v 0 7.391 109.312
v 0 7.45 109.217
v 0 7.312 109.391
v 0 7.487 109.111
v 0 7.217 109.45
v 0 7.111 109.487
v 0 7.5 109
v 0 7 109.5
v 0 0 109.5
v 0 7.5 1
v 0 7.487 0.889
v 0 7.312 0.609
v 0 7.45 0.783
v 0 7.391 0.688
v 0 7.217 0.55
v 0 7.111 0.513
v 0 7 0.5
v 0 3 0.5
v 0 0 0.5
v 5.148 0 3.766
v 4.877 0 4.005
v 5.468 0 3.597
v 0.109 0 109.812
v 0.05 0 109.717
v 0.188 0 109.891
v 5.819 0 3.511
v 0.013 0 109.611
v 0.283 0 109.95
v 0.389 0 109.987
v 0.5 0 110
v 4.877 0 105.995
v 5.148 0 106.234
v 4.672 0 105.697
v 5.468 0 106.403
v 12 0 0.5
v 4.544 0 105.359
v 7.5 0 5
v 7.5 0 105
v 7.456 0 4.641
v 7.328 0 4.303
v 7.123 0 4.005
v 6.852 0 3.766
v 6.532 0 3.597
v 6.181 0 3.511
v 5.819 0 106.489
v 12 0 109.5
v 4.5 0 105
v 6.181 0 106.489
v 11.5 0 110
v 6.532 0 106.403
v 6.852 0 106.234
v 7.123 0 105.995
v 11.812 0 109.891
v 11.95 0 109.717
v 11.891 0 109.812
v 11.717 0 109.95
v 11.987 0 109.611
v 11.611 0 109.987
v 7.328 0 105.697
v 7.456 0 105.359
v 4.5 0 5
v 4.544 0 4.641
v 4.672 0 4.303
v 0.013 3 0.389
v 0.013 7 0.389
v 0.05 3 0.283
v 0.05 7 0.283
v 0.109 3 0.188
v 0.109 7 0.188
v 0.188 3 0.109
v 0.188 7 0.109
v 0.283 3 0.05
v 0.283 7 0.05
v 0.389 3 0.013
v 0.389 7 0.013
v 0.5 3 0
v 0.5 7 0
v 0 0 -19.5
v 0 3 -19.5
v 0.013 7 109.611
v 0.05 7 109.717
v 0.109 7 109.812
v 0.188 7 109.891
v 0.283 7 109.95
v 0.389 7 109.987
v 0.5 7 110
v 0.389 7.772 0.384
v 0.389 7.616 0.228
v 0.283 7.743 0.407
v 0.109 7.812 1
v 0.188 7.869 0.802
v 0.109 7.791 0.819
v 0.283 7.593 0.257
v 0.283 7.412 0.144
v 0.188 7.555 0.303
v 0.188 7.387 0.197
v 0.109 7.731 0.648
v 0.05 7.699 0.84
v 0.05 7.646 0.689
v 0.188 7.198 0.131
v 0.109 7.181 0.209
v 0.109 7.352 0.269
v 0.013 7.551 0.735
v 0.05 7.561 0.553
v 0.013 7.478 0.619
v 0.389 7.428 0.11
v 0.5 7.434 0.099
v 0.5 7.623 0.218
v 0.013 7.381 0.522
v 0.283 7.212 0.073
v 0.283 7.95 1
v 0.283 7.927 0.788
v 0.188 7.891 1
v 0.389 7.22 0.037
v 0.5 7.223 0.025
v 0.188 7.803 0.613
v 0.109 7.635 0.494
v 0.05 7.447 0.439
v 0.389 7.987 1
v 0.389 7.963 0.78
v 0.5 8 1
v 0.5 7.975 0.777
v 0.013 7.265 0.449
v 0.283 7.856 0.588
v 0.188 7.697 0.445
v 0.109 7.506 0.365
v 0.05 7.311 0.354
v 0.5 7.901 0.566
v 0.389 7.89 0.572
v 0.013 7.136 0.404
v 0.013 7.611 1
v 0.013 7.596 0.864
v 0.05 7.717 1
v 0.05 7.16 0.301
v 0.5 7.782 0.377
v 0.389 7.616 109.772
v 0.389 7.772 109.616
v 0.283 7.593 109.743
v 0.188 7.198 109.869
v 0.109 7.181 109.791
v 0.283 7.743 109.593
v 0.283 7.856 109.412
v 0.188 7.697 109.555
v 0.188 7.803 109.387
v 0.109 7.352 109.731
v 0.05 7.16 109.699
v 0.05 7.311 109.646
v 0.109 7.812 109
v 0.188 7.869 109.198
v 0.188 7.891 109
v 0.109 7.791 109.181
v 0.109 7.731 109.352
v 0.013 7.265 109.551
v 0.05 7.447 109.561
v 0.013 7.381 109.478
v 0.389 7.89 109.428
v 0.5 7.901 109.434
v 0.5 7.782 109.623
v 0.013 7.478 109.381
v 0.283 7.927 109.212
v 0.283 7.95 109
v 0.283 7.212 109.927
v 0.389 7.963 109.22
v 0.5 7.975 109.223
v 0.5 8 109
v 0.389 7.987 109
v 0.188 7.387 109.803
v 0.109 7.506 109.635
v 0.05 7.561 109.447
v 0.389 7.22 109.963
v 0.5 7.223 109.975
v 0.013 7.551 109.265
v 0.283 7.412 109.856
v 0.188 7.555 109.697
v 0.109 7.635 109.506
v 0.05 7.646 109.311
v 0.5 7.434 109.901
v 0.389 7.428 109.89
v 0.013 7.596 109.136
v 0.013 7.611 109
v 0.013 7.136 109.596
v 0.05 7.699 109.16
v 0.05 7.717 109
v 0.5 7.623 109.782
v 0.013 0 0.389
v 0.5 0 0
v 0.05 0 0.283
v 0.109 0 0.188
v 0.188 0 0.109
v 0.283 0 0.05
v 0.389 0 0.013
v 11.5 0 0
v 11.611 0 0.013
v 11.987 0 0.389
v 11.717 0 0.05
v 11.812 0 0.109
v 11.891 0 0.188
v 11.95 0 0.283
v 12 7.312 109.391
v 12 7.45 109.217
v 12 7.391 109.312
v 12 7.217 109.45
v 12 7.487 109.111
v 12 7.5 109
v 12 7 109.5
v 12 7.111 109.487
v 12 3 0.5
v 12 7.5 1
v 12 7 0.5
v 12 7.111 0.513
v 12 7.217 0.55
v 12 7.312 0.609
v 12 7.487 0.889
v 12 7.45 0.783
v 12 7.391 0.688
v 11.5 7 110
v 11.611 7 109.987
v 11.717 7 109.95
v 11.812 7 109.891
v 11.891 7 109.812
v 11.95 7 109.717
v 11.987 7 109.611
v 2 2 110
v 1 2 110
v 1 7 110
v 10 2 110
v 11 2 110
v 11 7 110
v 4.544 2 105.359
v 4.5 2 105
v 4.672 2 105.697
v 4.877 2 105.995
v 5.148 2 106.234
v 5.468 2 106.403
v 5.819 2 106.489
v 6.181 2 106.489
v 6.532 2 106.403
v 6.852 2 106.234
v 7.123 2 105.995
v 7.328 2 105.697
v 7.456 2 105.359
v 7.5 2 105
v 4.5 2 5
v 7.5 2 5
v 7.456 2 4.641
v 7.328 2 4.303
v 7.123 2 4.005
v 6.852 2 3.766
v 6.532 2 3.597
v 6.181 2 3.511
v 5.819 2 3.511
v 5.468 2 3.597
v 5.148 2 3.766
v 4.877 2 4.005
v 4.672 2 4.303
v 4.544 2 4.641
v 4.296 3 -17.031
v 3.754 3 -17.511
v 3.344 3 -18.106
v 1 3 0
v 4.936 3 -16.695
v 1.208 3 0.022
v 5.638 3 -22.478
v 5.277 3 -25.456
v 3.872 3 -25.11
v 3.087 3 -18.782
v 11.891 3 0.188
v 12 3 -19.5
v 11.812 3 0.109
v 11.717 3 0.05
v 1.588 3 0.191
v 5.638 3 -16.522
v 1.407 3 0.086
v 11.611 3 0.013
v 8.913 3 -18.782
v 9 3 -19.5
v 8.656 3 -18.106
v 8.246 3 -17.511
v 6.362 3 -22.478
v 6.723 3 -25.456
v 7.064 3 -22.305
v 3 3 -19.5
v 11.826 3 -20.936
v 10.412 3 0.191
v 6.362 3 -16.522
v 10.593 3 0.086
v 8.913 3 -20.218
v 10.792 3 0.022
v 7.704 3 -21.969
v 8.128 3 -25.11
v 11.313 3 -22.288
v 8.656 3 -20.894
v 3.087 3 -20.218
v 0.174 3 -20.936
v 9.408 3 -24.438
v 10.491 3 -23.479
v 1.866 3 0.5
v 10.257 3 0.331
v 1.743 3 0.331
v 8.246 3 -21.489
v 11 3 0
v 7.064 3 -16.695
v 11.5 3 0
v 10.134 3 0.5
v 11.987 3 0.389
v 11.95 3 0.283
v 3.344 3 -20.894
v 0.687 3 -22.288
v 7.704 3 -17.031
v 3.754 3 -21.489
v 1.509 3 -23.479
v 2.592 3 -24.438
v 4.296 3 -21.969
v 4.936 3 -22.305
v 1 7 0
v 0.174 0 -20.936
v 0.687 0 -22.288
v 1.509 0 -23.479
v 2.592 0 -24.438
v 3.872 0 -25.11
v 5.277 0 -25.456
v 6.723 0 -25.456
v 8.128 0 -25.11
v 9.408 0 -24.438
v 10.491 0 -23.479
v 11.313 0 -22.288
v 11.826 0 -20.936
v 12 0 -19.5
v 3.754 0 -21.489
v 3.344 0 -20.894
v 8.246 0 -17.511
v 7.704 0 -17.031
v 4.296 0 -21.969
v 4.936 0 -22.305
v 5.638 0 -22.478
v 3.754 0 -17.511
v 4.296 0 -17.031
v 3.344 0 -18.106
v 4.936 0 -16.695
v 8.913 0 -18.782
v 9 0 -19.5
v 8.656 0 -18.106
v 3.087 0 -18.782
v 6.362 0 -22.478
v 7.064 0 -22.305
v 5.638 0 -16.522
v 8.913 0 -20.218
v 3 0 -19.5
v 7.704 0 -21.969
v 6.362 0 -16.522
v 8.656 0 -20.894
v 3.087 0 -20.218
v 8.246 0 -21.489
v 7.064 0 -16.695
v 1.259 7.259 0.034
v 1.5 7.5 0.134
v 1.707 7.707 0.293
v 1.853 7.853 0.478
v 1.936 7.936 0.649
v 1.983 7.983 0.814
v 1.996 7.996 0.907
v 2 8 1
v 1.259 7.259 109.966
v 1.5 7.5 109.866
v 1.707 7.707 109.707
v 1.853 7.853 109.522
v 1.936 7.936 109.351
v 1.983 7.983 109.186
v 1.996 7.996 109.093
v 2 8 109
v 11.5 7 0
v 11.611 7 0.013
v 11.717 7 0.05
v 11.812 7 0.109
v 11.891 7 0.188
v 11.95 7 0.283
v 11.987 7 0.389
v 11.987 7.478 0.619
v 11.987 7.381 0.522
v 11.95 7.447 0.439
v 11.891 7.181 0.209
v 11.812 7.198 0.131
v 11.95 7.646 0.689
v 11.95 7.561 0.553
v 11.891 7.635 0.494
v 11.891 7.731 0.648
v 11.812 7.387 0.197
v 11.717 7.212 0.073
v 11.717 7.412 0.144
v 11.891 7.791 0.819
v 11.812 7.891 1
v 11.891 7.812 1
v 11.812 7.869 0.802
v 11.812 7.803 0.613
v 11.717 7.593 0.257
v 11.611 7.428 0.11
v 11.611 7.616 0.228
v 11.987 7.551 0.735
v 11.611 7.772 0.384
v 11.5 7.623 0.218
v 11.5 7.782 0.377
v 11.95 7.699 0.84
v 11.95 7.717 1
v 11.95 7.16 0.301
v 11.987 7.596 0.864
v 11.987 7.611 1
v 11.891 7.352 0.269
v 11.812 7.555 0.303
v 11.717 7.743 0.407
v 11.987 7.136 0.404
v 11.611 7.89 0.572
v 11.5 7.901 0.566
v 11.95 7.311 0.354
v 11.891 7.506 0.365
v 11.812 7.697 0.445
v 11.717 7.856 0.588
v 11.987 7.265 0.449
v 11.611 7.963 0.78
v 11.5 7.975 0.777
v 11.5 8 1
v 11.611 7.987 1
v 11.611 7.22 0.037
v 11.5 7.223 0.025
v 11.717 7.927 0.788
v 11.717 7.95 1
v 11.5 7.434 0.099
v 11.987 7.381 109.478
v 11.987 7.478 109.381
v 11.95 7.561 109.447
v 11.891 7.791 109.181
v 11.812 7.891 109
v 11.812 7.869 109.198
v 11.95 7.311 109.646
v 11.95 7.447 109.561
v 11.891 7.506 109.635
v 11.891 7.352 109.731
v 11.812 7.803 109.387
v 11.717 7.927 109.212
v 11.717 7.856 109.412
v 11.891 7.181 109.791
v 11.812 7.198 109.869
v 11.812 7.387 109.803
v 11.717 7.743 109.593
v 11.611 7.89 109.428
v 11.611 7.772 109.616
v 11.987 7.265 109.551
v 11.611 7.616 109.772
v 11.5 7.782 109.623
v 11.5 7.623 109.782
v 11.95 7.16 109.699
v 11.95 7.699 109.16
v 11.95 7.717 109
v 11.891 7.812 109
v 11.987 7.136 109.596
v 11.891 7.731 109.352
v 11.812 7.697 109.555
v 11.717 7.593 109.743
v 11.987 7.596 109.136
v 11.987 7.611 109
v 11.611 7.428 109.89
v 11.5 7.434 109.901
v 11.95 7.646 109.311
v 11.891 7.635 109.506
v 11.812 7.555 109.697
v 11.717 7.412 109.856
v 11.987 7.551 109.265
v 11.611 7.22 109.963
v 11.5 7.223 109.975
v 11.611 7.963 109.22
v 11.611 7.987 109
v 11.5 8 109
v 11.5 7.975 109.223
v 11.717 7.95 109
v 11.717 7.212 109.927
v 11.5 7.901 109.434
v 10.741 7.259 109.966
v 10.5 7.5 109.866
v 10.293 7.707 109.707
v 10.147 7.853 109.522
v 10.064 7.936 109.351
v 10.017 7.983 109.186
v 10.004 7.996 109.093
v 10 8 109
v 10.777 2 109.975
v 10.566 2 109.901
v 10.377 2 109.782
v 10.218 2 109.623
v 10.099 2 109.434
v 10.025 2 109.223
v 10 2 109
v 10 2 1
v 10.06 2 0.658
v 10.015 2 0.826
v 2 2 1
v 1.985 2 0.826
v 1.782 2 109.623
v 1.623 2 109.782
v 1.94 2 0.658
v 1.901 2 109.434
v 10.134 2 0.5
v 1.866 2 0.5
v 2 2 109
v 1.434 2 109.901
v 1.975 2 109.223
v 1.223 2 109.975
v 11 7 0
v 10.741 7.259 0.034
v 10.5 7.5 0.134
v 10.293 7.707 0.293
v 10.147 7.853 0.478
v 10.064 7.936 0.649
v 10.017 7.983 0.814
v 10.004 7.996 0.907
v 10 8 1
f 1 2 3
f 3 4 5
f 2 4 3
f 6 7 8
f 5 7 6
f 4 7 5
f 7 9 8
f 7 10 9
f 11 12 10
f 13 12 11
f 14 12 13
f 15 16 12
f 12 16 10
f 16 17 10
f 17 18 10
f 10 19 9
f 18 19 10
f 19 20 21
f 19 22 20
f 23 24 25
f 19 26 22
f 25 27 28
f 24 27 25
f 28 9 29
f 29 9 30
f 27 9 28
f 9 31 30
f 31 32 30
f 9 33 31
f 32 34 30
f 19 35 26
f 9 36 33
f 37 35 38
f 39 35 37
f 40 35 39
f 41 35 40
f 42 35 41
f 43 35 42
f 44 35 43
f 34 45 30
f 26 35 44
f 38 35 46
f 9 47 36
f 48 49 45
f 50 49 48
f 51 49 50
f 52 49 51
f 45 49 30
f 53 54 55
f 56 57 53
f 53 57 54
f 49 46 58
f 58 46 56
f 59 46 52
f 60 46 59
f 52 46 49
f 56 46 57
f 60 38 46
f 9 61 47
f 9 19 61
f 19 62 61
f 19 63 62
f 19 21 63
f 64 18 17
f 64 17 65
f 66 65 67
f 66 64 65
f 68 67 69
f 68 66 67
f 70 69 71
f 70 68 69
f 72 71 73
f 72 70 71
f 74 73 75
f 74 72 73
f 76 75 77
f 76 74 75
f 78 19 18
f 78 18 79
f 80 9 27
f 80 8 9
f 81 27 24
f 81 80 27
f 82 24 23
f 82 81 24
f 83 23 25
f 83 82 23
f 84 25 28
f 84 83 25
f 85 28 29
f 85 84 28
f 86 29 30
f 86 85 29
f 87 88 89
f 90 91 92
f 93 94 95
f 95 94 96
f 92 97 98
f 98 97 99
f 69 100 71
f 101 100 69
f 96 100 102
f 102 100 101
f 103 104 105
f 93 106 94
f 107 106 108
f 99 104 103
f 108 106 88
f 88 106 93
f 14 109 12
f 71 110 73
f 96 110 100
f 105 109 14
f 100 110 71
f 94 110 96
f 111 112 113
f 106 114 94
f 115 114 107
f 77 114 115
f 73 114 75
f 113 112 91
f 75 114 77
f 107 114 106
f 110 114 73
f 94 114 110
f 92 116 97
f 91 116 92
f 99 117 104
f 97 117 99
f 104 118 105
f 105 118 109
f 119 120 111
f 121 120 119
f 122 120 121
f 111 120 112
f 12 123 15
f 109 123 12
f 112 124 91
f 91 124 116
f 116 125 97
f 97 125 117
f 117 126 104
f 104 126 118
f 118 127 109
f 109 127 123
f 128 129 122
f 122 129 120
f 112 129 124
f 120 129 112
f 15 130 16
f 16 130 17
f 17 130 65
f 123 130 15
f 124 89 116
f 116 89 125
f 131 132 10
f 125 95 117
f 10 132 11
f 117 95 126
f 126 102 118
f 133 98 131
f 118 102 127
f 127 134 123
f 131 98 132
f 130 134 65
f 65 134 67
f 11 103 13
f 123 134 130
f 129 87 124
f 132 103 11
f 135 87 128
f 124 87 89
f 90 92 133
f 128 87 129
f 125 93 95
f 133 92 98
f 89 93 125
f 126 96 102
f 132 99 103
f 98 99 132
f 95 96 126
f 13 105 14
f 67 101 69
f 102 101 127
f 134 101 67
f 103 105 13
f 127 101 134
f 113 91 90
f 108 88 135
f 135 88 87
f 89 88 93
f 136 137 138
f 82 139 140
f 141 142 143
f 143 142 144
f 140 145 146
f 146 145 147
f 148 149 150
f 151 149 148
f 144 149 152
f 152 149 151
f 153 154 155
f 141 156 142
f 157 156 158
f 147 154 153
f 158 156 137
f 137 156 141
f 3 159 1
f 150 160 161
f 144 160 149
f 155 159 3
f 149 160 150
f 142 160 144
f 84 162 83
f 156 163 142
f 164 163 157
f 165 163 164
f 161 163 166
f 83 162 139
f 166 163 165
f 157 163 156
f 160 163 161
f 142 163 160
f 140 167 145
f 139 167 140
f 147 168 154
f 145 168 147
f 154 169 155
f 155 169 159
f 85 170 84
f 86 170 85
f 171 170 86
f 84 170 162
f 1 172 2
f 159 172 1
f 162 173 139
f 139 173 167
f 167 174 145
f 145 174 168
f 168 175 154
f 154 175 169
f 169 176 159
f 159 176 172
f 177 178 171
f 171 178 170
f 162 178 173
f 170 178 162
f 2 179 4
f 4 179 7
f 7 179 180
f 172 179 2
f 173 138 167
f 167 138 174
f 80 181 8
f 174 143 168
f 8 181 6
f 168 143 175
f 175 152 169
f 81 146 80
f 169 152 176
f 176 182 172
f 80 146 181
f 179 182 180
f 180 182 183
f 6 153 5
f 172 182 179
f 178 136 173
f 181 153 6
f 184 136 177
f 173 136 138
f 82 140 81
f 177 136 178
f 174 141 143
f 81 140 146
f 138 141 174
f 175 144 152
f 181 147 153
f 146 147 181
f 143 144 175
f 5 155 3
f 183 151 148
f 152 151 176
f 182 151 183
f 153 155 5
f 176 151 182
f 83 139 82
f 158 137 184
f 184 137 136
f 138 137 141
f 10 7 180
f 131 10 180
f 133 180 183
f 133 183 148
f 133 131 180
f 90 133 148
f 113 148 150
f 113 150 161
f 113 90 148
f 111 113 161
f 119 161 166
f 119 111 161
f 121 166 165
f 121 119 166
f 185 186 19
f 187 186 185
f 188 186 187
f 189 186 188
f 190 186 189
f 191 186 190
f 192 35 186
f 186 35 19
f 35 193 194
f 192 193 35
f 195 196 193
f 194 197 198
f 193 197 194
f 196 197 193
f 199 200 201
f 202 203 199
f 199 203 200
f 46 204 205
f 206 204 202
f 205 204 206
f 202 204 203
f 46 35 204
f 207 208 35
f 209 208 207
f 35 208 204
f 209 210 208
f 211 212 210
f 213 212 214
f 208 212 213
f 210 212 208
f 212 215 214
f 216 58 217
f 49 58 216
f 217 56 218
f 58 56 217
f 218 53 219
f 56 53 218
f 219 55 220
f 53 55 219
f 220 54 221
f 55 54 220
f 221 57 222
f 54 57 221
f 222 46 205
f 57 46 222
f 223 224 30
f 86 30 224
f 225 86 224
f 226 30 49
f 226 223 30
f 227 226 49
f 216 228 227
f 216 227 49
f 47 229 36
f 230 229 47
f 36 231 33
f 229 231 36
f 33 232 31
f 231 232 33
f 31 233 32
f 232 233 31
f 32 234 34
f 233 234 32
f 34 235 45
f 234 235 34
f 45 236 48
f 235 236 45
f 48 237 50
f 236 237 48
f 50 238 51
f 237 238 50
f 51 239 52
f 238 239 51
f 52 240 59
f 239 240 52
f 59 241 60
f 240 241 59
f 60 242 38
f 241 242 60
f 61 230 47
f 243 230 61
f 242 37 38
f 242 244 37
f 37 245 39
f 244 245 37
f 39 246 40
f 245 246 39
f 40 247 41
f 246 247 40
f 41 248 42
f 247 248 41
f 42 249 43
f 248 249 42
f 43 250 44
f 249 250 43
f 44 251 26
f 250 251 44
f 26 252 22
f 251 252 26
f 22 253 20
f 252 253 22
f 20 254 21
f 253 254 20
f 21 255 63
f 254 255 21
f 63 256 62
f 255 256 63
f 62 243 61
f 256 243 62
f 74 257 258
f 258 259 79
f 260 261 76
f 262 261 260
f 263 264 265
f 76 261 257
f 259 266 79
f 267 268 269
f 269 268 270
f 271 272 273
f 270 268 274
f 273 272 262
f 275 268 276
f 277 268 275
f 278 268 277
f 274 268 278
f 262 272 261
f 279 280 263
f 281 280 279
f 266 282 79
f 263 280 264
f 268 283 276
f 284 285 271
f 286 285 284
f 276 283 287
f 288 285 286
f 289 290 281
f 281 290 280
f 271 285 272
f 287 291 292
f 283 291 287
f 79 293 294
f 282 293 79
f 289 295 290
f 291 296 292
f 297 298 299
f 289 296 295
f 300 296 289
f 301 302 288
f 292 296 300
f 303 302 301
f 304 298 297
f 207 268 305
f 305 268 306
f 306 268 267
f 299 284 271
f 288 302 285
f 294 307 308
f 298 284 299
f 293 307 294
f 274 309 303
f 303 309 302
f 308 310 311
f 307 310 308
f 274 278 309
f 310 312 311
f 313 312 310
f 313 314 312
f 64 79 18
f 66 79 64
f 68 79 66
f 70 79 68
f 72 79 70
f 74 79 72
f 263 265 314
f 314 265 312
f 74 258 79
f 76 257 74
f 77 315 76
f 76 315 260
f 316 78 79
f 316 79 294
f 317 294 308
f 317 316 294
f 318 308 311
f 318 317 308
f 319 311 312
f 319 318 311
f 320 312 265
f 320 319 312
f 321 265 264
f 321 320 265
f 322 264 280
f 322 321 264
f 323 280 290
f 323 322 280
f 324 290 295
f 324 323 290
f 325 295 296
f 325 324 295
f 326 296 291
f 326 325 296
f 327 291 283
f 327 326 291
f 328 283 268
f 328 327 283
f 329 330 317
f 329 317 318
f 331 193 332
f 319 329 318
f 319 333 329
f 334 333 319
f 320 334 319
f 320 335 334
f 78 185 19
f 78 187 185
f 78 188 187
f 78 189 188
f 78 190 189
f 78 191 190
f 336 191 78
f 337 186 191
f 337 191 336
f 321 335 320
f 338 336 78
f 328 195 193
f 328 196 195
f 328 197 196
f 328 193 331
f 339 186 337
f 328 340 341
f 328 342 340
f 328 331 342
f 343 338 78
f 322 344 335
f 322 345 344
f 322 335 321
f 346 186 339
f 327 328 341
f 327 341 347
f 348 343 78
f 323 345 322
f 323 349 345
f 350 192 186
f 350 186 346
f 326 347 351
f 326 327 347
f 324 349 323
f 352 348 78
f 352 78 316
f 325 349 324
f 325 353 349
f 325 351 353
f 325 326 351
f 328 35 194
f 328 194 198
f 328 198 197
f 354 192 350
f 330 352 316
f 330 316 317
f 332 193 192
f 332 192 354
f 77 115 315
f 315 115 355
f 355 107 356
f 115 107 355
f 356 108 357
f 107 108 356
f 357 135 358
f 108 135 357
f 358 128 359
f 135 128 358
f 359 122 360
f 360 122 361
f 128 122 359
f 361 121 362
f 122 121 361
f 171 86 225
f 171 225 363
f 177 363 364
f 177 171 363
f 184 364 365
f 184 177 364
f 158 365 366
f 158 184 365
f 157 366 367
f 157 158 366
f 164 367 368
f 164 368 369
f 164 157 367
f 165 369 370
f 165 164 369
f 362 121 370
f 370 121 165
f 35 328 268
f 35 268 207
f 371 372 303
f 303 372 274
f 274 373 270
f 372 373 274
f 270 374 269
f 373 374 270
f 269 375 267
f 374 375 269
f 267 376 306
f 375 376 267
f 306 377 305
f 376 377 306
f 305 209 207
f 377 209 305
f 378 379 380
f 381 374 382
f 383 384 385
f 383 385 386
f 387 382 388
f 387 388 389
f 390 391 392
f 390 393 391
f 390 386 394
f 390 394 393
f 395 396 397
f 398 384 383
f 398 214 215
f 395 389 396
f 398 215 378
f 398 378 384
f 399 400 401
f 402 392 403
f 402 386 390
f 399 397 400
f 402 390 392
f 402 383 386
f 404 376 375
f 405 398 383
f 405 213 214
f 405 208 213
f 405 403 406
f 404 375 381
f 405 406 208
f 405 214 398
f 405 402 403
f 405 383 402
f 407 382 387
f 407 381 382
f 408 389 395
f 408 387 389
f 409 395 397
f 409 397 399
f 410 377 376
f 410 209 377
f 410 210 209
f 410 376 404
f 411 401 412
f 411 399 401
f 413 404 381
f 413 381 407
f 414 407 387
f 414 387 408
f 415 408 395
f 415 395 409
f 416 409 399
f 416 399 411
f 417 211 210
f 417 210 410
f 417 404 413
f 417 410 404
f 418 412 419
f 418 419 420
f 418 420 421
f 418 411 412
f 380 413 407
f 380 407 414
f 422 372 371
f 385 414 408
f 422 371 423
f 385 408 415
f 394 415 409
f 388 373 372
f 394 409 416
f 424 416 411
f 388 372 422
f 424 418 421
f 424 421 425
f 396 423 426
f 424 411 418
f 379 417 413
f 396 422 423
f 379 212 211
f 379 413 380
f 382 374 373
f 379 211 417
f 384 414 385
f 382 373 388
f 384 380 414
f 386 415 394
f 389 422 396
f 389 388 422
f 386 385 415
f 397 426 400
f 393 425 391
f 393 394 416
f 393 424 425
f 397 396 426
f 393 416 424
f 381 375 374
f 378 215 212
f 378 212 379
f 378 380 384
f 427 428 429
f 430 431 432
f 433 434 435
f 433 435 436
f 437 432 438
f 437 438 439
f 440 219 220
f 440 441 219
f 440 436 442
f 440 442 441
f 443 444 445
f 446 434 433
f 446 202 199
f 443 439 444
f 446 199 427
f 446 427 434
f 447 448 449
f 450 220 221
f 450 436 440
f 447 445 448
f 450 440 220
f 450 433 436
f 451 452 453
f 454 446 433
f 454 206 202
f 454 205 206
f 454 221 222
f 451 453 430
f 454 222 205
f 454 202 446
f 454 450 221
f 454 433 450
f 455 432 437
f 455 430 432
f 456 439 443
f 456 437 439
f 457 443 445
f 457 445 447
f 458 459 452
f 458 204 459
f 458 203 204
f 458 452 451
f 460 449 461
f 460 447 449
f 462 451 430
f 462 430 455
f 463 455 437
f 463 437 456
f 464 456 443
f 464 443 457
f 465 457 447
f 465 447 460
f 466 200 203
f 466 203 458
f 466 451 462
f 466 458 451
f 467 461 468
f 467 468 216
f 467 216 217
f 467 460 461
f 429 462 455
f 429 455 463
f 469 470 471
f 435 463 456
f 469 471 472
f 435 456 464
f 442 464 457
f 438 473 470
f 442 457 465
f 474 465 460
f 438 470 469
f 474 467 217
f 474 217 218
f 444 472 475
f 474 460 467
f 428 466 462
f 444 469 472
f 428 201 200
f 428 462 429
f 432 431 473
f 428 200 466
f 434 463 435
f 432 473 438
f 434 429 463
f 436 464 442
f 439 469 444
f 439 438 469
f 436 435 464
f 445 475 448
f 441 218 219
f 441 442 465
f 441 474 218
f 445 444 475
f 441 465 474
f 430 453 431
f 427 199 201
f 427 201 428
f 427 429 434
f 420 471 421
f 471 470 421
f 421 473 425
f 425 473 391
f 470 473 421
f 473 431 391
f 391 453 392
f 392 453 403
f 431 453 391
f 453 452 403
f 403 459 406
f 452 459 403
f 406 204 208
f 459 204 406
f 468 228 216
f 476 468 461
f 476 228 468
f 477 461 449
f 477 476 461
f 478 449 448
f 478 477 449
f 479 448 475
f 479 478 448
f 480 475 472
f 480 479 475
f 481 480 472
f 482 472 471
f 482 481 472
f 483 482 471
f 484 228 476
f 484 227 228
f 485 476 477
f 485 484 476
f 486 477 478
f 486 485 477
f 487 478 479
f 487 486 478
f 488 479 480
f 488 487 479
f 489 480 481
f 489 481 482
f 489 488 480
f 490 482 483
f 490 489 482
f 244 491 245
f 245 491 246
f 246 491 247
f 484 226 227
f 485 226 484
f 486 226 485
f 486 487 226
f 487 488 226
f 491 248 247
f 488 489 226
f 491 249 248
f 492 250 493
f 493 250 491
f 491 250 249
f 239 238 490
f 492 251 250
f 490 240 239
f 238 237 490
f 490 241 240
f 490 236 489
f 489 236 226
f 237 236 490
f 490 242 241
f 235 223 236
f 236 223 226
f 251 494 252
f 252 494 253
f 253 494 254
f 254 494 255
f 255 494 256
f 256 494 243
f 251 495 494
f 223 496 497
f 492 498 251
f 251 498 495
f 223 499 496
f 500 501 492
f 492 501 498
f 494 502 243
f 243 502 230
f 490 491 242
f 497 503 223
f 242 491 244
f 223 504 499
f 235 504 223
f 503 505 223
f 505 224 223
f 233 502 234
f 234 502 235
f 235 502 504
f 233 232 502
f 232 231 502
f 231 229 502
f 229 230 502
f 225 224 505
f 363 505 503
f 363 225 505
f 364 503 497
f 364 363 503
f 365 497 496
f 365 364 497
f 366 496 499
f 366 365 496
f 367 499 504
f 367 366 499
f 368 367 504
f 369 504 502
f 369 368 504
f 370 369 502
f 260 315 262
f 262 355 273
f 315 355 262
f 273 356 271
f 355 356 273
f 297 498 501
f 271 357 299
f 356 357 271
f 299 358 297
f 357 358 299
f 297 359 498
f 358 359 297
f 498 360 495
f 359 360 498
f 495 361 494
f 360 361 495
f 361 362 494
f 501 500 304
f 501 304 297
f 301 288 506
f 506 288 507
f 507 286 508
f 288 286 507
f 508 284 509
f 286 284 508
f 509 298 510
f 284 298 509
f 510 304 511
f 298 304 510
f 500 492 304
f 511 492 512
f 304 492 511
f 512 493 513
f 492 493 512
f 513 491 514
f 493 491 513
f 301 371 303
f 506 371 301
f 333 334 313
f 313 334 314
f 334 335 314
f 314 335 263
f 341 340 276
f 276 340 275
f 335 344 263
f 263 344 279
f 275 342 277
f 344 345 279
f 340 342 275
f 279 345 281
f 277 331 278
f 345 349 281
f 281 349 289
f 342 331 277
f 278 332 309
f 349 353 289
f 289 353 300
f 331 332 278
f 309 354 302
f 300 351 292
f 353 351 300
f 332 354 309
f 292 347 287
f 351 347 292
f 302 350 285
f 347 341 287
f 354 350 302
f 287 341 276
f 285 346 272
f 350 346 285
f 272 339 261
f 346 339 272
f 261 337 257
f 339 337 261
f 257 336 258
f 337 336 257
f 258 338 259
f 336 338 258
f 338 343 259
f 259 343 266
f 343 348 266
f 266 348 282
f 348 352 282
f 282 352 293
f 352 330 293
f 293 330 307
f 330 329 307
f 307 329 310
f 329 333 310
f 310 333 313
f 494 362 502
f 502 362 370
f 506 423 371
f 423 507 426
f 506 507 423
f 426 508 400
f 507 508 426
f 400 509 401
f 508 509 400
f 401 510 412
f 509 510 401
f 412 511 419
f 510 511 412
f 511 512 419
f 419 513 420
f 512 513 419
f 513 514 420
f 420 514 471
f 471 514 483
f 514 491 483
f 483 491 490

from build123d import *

# Parameters (mm, degrees)
EXTRUDE_DEPTH = 110
POCKET_DEPTH  = 5
FILLET_R      = 1
FILLET001_R   = 0.5
SKETCH002_R   = 3
PAD_DEPTH     = 3


with BuildPart() as part:
    # Sketch → Extrude (new body)
    with BuildSketch(Plane.XY):
        Polygon((0, 0), (12, 0), (12, 8), (10, 8), (10, 2), (2, 2), (2, 8), (0, 8), align=None)
    extrude(amount=EXTRUDE_DEPTH)

    # Sketch001 (on Face5 of BaseFeature) → Pocket (cut)
    with BuildSketch(Plane(origin=(0, 2, 0), x_dir=(-1, 0, 0), z_dir=(0, 1, 0))):
        with BuildLine():
            ThreePointArc((-4.5, 105), (-6, 106.5), (-7.5, 105))
            Line((-7.5, 105), (-7.5, 5))
            ThreePointArc((-7.5, 5), (-6, 3.5), (-4.5, 5))
            Line((-4.5, 105), (-4.5, 5))
        make_face()
    extrude(amount=-POCKET_DEPTH, mode=Mode.SUBTRACT)

    # Fillet
    fillet_edges = [part.edges().sort_by_distance(p)[0] for p in [
        (11, 8, 0),
        (10, 5, 0),
        (2, 5, 0),
        (1, 8, 0),
        (11, 8, 110),
        (10, 5, 110),
        (2, 5, 110),
        (1, 8, 110),
    ]]
    fillet(fillet_edges, radius=FILLET_R)

    # Fillet001
    fillet001_edges = [part.edges().sort_by_distance(p)[0] for p in [
        (0, 3.5, 0),
        (12, 3.5, 0),
    ]]
    fillet(fillet001_edges, radius=FILLET001_R)

    # Sketch002 (on Face2 of Fillet001) → Pad (join)
    with BuildSketch(Plane.XZ):
        with BuildLine():
            Line((0, 0.5), (0, -19.5))
            ThreePointArc((0, -19.5), (6, -25.5), (12, -19.5))
            Line((12, -19.5), (12, 0.5))
            Line((12, 0.5), (0, 0.5))
        make_face()
        with Locations((6, -19.5)):
            Circle(SKETCH002_R, mode=Mode.SUBTRACT)
    extrude(amount=-PAD_DEPTH)


solid = part.part
